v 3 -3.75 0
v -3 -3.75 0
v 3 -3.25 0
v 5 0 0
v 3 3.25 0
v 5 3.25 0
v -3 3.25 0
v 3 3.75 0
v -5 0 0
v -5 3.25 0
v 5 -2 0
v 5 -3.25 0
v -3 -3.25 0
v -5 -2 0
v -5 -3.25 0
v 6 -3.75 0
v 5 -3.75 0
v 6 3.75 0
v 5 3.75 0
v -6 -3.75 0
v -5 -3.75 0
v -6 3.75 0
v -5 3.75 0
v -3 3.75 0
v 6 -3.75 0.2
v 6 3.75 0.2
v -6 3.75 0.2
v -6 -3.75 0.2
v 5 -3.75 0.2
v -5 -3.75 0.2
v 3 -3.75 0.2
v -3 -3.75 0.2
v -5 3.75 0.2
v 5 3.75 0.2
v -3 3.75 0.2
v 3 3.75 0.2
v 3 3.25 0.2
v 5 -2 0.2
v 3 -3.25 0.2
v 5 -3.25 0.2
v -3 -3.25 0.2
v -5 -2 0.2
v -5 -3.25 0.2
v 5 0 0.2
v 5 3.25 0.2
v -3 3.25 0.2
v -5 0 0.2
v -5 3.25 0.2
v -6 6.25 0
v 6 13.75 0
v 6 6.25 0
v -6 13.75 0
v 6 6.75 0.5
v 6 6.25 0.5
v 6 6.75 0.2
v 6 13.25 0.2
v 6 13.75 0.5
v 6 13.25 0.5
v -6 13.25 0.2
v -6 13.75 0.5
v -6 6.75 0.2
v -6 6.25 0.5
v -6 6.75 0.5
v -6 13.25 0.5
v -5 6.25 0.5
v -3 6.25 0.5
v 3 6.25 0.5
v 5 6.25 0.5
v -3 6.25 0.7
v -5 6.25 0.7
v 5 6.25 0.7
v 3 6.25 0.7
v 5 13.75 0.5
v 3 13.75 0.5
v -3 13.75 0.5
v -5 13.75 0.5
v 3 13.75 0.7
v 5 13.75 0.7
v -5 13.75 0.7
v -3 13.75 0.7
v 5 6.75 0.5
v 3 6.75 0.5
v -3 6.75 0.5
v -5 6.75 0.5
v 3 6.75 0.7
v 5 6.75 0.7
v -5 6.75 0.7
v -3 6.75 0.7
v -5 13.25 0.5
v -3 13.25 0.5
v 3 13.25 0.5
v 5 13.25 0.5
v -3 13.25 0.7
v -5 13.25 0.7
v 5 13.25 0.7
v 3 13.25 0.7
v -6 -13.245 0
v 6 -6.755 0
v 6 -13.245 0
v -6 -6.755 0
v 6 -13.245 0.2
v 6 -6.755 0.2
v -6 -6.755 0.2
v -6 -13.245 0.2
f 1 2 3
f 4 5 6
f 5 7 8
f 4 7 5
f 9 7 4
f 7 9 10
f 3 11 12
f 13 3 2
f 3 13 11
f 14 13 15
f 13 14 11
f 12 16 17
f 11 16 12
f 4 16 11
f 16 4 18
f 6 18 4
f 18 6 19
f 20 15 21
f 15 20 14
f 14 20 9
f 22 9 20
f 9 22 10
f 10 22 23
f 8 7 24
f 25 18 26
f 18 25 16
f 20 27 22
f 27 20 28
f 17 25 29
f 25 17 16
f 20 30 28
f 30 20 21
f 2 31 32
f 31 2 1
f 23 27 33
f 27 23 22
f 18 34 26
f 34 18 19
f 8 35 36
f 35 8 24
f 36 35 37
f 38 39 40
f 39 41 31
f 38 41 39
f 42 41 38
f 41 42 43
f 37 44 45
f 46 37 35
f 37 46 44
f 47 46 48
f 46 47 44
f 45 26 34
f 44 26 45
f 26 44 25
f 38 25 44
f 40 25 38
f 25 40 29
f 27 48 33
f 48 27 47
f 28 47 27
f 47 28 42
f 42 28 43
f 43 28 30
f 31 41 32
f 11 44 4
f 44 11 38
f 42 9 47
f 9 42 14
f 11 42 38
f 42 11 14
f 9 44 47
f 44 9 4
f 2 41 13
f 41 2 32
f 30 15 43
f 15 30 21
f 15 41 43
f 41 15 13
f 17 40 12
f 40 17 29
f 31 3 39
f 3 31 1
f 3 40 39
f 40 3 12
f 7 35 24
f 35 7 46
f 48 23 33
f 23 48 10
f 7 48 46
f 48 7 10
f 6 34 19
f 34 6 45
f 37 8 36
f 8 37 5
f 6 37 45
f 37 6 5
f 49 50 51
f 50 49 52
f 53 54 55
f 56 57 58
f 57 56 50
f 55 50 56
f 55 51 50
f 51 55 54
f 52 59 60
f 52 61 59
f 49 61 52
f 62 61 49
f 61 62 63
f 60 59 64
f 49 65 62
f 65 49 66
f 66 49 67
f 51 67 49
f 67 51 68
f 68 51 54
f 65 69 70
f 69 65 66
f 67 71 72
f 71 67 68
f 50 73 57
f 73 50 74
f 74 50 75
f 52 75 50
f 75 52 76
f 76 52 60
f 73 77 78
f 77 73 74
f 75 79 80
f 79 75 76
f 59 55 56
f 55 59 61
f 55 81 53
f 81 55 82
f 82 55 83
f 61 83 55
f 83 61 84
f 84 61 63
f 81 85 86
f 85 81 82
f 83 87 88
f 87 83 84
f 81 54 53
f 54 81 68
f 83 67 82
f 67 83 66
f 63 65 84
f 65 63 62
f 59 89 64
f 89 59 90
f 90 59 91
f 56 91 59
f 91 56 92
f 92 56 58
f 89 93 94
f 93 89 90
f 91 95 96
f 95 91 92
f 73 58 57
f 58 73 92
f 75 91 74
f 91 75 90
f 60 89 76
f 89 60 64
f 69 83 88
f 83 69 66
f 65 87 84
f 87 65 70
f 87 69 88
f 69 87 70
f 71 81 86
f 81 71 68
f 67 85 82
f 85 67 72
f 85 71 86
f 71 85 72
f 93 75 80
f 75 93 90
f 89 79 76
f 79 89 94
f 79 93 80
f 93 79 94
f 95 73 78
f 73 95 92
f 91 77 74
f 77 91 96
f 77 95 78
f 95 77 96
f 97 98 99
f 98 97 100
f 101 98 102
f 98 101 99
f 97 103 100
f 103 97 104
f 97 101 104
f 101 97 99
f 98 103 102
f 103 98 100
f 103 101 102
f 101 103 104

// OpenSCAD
$fn=60;

//
// ray()

module ray(angle=0, length=1.4, width=.4, delta=2) {
  rotate(angle)
    translate([ 0, delta, 0 ])
    square([ width, length ], center=true);
}

//
// cloud()

module cloud(height=1) {
  linear_extrude(height=height) {
    translate([ -1, 0, 0 ]) circle(1);
    translate([ 1, 0, 0 ]) circle(1);
    translate([ -1, -1, 0 ]) square(2);
    translate([ 0, 1, 0 ]) circle(1);
  }
}

//
// double_cloud()

module double_cloud(height=1) {
  translate([ .6, -.5, 0 ]) {
    difference() {
      translate([ -1.4, .5, 0 ]) cloud(height);
      cloud(height);
    }
    translate([ .2, -.2, 0 ]) cloud(height);
  }
}

//
// sun()

module sun(height=1, rays=8, length=1.3) {
  linear_extrude(height=height) {
    circle(1);
    inc = 360 / rays;
    for (a = [ 0: inc: 360 ]) ray(a);
  }
}

//
// cloudy()

module cloudy(height=1) {
  difference() {
    translate([ 1, 1, 0 ]) difference() {
      sun(height);
      linear_extrude(height) ray(90);
      linear_extrude(height) ray(180);
    }
    translate([ -.7, -.3, 0 ]) cloud(height);
  }
  translate([ -.9, -.5, 0 ]) cloud(height);
}

//
// bulb()

module bulb(height=1, rays=3) {
  linear_extrude(height=height) {
    hull() {
      translate([ 0, 0, 0 ]) circle(1);
      translate([ -.5, -1.3, 0 ]) square([ 1, 1 ]);
    }
    translate([ -.5, -2, 0 ]) square([ 1, 1 ]);
    if (rays == 3) {
      for (a = [ 90, 0, -90 ]) ray(a);
    }
    else {
      for (a = [ 45, 90, 135, 0, -45, -90, -135 ]) ray(a);
    }
  }
}

//
// streetlamp()

module slice(r=1, angle=30) {
  intersection() {
    circle(r=r);
    square(r);
    rotate(angle - 90) square(r);
  }
}

module streetlamp(height=1, rays=3) {
  linear_extrude(height=height) {
    circle(.3);
    translate([ -.4, 0, 0 ]) square([ 2, .5 ]);
    translate([ 1.5, -3, 0 ]) square([ .5, 3 ]);
    translate([ 1.5, 0, 0 ]) slice(.5, 90);
      for (a = [ 90, 135, 180, 225 ])
        ray(a, length=0.9, width=.3, delta=1.1);
  }
}

//
// penta()

module penta(height=1, base=2, side=2, length=4) {
  b = base / 2;
  linear_extrude(height=height) {
    polygon([ [ -b, 0 ], [ -b, side ], [ 0, length ], [ b, side ], [ b, 0 ] ]);
  }
}

//
// plate()

module plate(height=0.2, length=12, width=7.5, trans=1) {
  tx = -length / 2 * trans;
  ty = -width / 2 * trans;
  translate([ tx, ty, 0 ])
    linear_extrude(height=height) {
      square([ length, width ]);
    }
}


//
// main

difference() {
  plate();
  translate([ 0, -1, 0 ])
    plate(height=0.3, length=10, width=2);
  translate([ -5, -3.75, -.1 ])
    plate(height=0.4, length=2, width=0.5, trans=0);
  translate([ 3, -3.75, -.1 ])
    plate(height=0.4, length=2, width=0.5, trans=0);
  translate([ -5, 3.25, -.1 ])
    plate(height=0.4, length=2, width=0.5, trans=0);
  translate([ 3, 3.25, -.1 ])
    plate(height=0.4, length=2, width=0.5, trans=0);
}

translate([ 0, 10, 0 ]) {
  plate();
  translate([ -6, -3.75, 0 ]) plate(0.5, 12, 0.5, trans=0);
  translate([ -6, 3.25, 0 ]) plate(0.5, 12, 0.5, trans=0);
  translate([ -5, -3.75, 0.5 ])
    plate(height=0.2, length=2, width=0.5, trans=0);
  translate([ 3, -3.75, 0.5 ])
    plate(height=0.2, length=2, width=0.5, trans=0);
  translate([ -5, 3.25, 0.5 ])
    plate(height=0.2, length=2, width=0.5, trans=0);
  translate([ 3, 3.25, 0.5 ])
    plate(height=0.2, length=2, width=0.5, trans=0);
}

translate([ 0, -10, 0 ]) {
  color("dodgerblue") plate(width=6.49);
}
